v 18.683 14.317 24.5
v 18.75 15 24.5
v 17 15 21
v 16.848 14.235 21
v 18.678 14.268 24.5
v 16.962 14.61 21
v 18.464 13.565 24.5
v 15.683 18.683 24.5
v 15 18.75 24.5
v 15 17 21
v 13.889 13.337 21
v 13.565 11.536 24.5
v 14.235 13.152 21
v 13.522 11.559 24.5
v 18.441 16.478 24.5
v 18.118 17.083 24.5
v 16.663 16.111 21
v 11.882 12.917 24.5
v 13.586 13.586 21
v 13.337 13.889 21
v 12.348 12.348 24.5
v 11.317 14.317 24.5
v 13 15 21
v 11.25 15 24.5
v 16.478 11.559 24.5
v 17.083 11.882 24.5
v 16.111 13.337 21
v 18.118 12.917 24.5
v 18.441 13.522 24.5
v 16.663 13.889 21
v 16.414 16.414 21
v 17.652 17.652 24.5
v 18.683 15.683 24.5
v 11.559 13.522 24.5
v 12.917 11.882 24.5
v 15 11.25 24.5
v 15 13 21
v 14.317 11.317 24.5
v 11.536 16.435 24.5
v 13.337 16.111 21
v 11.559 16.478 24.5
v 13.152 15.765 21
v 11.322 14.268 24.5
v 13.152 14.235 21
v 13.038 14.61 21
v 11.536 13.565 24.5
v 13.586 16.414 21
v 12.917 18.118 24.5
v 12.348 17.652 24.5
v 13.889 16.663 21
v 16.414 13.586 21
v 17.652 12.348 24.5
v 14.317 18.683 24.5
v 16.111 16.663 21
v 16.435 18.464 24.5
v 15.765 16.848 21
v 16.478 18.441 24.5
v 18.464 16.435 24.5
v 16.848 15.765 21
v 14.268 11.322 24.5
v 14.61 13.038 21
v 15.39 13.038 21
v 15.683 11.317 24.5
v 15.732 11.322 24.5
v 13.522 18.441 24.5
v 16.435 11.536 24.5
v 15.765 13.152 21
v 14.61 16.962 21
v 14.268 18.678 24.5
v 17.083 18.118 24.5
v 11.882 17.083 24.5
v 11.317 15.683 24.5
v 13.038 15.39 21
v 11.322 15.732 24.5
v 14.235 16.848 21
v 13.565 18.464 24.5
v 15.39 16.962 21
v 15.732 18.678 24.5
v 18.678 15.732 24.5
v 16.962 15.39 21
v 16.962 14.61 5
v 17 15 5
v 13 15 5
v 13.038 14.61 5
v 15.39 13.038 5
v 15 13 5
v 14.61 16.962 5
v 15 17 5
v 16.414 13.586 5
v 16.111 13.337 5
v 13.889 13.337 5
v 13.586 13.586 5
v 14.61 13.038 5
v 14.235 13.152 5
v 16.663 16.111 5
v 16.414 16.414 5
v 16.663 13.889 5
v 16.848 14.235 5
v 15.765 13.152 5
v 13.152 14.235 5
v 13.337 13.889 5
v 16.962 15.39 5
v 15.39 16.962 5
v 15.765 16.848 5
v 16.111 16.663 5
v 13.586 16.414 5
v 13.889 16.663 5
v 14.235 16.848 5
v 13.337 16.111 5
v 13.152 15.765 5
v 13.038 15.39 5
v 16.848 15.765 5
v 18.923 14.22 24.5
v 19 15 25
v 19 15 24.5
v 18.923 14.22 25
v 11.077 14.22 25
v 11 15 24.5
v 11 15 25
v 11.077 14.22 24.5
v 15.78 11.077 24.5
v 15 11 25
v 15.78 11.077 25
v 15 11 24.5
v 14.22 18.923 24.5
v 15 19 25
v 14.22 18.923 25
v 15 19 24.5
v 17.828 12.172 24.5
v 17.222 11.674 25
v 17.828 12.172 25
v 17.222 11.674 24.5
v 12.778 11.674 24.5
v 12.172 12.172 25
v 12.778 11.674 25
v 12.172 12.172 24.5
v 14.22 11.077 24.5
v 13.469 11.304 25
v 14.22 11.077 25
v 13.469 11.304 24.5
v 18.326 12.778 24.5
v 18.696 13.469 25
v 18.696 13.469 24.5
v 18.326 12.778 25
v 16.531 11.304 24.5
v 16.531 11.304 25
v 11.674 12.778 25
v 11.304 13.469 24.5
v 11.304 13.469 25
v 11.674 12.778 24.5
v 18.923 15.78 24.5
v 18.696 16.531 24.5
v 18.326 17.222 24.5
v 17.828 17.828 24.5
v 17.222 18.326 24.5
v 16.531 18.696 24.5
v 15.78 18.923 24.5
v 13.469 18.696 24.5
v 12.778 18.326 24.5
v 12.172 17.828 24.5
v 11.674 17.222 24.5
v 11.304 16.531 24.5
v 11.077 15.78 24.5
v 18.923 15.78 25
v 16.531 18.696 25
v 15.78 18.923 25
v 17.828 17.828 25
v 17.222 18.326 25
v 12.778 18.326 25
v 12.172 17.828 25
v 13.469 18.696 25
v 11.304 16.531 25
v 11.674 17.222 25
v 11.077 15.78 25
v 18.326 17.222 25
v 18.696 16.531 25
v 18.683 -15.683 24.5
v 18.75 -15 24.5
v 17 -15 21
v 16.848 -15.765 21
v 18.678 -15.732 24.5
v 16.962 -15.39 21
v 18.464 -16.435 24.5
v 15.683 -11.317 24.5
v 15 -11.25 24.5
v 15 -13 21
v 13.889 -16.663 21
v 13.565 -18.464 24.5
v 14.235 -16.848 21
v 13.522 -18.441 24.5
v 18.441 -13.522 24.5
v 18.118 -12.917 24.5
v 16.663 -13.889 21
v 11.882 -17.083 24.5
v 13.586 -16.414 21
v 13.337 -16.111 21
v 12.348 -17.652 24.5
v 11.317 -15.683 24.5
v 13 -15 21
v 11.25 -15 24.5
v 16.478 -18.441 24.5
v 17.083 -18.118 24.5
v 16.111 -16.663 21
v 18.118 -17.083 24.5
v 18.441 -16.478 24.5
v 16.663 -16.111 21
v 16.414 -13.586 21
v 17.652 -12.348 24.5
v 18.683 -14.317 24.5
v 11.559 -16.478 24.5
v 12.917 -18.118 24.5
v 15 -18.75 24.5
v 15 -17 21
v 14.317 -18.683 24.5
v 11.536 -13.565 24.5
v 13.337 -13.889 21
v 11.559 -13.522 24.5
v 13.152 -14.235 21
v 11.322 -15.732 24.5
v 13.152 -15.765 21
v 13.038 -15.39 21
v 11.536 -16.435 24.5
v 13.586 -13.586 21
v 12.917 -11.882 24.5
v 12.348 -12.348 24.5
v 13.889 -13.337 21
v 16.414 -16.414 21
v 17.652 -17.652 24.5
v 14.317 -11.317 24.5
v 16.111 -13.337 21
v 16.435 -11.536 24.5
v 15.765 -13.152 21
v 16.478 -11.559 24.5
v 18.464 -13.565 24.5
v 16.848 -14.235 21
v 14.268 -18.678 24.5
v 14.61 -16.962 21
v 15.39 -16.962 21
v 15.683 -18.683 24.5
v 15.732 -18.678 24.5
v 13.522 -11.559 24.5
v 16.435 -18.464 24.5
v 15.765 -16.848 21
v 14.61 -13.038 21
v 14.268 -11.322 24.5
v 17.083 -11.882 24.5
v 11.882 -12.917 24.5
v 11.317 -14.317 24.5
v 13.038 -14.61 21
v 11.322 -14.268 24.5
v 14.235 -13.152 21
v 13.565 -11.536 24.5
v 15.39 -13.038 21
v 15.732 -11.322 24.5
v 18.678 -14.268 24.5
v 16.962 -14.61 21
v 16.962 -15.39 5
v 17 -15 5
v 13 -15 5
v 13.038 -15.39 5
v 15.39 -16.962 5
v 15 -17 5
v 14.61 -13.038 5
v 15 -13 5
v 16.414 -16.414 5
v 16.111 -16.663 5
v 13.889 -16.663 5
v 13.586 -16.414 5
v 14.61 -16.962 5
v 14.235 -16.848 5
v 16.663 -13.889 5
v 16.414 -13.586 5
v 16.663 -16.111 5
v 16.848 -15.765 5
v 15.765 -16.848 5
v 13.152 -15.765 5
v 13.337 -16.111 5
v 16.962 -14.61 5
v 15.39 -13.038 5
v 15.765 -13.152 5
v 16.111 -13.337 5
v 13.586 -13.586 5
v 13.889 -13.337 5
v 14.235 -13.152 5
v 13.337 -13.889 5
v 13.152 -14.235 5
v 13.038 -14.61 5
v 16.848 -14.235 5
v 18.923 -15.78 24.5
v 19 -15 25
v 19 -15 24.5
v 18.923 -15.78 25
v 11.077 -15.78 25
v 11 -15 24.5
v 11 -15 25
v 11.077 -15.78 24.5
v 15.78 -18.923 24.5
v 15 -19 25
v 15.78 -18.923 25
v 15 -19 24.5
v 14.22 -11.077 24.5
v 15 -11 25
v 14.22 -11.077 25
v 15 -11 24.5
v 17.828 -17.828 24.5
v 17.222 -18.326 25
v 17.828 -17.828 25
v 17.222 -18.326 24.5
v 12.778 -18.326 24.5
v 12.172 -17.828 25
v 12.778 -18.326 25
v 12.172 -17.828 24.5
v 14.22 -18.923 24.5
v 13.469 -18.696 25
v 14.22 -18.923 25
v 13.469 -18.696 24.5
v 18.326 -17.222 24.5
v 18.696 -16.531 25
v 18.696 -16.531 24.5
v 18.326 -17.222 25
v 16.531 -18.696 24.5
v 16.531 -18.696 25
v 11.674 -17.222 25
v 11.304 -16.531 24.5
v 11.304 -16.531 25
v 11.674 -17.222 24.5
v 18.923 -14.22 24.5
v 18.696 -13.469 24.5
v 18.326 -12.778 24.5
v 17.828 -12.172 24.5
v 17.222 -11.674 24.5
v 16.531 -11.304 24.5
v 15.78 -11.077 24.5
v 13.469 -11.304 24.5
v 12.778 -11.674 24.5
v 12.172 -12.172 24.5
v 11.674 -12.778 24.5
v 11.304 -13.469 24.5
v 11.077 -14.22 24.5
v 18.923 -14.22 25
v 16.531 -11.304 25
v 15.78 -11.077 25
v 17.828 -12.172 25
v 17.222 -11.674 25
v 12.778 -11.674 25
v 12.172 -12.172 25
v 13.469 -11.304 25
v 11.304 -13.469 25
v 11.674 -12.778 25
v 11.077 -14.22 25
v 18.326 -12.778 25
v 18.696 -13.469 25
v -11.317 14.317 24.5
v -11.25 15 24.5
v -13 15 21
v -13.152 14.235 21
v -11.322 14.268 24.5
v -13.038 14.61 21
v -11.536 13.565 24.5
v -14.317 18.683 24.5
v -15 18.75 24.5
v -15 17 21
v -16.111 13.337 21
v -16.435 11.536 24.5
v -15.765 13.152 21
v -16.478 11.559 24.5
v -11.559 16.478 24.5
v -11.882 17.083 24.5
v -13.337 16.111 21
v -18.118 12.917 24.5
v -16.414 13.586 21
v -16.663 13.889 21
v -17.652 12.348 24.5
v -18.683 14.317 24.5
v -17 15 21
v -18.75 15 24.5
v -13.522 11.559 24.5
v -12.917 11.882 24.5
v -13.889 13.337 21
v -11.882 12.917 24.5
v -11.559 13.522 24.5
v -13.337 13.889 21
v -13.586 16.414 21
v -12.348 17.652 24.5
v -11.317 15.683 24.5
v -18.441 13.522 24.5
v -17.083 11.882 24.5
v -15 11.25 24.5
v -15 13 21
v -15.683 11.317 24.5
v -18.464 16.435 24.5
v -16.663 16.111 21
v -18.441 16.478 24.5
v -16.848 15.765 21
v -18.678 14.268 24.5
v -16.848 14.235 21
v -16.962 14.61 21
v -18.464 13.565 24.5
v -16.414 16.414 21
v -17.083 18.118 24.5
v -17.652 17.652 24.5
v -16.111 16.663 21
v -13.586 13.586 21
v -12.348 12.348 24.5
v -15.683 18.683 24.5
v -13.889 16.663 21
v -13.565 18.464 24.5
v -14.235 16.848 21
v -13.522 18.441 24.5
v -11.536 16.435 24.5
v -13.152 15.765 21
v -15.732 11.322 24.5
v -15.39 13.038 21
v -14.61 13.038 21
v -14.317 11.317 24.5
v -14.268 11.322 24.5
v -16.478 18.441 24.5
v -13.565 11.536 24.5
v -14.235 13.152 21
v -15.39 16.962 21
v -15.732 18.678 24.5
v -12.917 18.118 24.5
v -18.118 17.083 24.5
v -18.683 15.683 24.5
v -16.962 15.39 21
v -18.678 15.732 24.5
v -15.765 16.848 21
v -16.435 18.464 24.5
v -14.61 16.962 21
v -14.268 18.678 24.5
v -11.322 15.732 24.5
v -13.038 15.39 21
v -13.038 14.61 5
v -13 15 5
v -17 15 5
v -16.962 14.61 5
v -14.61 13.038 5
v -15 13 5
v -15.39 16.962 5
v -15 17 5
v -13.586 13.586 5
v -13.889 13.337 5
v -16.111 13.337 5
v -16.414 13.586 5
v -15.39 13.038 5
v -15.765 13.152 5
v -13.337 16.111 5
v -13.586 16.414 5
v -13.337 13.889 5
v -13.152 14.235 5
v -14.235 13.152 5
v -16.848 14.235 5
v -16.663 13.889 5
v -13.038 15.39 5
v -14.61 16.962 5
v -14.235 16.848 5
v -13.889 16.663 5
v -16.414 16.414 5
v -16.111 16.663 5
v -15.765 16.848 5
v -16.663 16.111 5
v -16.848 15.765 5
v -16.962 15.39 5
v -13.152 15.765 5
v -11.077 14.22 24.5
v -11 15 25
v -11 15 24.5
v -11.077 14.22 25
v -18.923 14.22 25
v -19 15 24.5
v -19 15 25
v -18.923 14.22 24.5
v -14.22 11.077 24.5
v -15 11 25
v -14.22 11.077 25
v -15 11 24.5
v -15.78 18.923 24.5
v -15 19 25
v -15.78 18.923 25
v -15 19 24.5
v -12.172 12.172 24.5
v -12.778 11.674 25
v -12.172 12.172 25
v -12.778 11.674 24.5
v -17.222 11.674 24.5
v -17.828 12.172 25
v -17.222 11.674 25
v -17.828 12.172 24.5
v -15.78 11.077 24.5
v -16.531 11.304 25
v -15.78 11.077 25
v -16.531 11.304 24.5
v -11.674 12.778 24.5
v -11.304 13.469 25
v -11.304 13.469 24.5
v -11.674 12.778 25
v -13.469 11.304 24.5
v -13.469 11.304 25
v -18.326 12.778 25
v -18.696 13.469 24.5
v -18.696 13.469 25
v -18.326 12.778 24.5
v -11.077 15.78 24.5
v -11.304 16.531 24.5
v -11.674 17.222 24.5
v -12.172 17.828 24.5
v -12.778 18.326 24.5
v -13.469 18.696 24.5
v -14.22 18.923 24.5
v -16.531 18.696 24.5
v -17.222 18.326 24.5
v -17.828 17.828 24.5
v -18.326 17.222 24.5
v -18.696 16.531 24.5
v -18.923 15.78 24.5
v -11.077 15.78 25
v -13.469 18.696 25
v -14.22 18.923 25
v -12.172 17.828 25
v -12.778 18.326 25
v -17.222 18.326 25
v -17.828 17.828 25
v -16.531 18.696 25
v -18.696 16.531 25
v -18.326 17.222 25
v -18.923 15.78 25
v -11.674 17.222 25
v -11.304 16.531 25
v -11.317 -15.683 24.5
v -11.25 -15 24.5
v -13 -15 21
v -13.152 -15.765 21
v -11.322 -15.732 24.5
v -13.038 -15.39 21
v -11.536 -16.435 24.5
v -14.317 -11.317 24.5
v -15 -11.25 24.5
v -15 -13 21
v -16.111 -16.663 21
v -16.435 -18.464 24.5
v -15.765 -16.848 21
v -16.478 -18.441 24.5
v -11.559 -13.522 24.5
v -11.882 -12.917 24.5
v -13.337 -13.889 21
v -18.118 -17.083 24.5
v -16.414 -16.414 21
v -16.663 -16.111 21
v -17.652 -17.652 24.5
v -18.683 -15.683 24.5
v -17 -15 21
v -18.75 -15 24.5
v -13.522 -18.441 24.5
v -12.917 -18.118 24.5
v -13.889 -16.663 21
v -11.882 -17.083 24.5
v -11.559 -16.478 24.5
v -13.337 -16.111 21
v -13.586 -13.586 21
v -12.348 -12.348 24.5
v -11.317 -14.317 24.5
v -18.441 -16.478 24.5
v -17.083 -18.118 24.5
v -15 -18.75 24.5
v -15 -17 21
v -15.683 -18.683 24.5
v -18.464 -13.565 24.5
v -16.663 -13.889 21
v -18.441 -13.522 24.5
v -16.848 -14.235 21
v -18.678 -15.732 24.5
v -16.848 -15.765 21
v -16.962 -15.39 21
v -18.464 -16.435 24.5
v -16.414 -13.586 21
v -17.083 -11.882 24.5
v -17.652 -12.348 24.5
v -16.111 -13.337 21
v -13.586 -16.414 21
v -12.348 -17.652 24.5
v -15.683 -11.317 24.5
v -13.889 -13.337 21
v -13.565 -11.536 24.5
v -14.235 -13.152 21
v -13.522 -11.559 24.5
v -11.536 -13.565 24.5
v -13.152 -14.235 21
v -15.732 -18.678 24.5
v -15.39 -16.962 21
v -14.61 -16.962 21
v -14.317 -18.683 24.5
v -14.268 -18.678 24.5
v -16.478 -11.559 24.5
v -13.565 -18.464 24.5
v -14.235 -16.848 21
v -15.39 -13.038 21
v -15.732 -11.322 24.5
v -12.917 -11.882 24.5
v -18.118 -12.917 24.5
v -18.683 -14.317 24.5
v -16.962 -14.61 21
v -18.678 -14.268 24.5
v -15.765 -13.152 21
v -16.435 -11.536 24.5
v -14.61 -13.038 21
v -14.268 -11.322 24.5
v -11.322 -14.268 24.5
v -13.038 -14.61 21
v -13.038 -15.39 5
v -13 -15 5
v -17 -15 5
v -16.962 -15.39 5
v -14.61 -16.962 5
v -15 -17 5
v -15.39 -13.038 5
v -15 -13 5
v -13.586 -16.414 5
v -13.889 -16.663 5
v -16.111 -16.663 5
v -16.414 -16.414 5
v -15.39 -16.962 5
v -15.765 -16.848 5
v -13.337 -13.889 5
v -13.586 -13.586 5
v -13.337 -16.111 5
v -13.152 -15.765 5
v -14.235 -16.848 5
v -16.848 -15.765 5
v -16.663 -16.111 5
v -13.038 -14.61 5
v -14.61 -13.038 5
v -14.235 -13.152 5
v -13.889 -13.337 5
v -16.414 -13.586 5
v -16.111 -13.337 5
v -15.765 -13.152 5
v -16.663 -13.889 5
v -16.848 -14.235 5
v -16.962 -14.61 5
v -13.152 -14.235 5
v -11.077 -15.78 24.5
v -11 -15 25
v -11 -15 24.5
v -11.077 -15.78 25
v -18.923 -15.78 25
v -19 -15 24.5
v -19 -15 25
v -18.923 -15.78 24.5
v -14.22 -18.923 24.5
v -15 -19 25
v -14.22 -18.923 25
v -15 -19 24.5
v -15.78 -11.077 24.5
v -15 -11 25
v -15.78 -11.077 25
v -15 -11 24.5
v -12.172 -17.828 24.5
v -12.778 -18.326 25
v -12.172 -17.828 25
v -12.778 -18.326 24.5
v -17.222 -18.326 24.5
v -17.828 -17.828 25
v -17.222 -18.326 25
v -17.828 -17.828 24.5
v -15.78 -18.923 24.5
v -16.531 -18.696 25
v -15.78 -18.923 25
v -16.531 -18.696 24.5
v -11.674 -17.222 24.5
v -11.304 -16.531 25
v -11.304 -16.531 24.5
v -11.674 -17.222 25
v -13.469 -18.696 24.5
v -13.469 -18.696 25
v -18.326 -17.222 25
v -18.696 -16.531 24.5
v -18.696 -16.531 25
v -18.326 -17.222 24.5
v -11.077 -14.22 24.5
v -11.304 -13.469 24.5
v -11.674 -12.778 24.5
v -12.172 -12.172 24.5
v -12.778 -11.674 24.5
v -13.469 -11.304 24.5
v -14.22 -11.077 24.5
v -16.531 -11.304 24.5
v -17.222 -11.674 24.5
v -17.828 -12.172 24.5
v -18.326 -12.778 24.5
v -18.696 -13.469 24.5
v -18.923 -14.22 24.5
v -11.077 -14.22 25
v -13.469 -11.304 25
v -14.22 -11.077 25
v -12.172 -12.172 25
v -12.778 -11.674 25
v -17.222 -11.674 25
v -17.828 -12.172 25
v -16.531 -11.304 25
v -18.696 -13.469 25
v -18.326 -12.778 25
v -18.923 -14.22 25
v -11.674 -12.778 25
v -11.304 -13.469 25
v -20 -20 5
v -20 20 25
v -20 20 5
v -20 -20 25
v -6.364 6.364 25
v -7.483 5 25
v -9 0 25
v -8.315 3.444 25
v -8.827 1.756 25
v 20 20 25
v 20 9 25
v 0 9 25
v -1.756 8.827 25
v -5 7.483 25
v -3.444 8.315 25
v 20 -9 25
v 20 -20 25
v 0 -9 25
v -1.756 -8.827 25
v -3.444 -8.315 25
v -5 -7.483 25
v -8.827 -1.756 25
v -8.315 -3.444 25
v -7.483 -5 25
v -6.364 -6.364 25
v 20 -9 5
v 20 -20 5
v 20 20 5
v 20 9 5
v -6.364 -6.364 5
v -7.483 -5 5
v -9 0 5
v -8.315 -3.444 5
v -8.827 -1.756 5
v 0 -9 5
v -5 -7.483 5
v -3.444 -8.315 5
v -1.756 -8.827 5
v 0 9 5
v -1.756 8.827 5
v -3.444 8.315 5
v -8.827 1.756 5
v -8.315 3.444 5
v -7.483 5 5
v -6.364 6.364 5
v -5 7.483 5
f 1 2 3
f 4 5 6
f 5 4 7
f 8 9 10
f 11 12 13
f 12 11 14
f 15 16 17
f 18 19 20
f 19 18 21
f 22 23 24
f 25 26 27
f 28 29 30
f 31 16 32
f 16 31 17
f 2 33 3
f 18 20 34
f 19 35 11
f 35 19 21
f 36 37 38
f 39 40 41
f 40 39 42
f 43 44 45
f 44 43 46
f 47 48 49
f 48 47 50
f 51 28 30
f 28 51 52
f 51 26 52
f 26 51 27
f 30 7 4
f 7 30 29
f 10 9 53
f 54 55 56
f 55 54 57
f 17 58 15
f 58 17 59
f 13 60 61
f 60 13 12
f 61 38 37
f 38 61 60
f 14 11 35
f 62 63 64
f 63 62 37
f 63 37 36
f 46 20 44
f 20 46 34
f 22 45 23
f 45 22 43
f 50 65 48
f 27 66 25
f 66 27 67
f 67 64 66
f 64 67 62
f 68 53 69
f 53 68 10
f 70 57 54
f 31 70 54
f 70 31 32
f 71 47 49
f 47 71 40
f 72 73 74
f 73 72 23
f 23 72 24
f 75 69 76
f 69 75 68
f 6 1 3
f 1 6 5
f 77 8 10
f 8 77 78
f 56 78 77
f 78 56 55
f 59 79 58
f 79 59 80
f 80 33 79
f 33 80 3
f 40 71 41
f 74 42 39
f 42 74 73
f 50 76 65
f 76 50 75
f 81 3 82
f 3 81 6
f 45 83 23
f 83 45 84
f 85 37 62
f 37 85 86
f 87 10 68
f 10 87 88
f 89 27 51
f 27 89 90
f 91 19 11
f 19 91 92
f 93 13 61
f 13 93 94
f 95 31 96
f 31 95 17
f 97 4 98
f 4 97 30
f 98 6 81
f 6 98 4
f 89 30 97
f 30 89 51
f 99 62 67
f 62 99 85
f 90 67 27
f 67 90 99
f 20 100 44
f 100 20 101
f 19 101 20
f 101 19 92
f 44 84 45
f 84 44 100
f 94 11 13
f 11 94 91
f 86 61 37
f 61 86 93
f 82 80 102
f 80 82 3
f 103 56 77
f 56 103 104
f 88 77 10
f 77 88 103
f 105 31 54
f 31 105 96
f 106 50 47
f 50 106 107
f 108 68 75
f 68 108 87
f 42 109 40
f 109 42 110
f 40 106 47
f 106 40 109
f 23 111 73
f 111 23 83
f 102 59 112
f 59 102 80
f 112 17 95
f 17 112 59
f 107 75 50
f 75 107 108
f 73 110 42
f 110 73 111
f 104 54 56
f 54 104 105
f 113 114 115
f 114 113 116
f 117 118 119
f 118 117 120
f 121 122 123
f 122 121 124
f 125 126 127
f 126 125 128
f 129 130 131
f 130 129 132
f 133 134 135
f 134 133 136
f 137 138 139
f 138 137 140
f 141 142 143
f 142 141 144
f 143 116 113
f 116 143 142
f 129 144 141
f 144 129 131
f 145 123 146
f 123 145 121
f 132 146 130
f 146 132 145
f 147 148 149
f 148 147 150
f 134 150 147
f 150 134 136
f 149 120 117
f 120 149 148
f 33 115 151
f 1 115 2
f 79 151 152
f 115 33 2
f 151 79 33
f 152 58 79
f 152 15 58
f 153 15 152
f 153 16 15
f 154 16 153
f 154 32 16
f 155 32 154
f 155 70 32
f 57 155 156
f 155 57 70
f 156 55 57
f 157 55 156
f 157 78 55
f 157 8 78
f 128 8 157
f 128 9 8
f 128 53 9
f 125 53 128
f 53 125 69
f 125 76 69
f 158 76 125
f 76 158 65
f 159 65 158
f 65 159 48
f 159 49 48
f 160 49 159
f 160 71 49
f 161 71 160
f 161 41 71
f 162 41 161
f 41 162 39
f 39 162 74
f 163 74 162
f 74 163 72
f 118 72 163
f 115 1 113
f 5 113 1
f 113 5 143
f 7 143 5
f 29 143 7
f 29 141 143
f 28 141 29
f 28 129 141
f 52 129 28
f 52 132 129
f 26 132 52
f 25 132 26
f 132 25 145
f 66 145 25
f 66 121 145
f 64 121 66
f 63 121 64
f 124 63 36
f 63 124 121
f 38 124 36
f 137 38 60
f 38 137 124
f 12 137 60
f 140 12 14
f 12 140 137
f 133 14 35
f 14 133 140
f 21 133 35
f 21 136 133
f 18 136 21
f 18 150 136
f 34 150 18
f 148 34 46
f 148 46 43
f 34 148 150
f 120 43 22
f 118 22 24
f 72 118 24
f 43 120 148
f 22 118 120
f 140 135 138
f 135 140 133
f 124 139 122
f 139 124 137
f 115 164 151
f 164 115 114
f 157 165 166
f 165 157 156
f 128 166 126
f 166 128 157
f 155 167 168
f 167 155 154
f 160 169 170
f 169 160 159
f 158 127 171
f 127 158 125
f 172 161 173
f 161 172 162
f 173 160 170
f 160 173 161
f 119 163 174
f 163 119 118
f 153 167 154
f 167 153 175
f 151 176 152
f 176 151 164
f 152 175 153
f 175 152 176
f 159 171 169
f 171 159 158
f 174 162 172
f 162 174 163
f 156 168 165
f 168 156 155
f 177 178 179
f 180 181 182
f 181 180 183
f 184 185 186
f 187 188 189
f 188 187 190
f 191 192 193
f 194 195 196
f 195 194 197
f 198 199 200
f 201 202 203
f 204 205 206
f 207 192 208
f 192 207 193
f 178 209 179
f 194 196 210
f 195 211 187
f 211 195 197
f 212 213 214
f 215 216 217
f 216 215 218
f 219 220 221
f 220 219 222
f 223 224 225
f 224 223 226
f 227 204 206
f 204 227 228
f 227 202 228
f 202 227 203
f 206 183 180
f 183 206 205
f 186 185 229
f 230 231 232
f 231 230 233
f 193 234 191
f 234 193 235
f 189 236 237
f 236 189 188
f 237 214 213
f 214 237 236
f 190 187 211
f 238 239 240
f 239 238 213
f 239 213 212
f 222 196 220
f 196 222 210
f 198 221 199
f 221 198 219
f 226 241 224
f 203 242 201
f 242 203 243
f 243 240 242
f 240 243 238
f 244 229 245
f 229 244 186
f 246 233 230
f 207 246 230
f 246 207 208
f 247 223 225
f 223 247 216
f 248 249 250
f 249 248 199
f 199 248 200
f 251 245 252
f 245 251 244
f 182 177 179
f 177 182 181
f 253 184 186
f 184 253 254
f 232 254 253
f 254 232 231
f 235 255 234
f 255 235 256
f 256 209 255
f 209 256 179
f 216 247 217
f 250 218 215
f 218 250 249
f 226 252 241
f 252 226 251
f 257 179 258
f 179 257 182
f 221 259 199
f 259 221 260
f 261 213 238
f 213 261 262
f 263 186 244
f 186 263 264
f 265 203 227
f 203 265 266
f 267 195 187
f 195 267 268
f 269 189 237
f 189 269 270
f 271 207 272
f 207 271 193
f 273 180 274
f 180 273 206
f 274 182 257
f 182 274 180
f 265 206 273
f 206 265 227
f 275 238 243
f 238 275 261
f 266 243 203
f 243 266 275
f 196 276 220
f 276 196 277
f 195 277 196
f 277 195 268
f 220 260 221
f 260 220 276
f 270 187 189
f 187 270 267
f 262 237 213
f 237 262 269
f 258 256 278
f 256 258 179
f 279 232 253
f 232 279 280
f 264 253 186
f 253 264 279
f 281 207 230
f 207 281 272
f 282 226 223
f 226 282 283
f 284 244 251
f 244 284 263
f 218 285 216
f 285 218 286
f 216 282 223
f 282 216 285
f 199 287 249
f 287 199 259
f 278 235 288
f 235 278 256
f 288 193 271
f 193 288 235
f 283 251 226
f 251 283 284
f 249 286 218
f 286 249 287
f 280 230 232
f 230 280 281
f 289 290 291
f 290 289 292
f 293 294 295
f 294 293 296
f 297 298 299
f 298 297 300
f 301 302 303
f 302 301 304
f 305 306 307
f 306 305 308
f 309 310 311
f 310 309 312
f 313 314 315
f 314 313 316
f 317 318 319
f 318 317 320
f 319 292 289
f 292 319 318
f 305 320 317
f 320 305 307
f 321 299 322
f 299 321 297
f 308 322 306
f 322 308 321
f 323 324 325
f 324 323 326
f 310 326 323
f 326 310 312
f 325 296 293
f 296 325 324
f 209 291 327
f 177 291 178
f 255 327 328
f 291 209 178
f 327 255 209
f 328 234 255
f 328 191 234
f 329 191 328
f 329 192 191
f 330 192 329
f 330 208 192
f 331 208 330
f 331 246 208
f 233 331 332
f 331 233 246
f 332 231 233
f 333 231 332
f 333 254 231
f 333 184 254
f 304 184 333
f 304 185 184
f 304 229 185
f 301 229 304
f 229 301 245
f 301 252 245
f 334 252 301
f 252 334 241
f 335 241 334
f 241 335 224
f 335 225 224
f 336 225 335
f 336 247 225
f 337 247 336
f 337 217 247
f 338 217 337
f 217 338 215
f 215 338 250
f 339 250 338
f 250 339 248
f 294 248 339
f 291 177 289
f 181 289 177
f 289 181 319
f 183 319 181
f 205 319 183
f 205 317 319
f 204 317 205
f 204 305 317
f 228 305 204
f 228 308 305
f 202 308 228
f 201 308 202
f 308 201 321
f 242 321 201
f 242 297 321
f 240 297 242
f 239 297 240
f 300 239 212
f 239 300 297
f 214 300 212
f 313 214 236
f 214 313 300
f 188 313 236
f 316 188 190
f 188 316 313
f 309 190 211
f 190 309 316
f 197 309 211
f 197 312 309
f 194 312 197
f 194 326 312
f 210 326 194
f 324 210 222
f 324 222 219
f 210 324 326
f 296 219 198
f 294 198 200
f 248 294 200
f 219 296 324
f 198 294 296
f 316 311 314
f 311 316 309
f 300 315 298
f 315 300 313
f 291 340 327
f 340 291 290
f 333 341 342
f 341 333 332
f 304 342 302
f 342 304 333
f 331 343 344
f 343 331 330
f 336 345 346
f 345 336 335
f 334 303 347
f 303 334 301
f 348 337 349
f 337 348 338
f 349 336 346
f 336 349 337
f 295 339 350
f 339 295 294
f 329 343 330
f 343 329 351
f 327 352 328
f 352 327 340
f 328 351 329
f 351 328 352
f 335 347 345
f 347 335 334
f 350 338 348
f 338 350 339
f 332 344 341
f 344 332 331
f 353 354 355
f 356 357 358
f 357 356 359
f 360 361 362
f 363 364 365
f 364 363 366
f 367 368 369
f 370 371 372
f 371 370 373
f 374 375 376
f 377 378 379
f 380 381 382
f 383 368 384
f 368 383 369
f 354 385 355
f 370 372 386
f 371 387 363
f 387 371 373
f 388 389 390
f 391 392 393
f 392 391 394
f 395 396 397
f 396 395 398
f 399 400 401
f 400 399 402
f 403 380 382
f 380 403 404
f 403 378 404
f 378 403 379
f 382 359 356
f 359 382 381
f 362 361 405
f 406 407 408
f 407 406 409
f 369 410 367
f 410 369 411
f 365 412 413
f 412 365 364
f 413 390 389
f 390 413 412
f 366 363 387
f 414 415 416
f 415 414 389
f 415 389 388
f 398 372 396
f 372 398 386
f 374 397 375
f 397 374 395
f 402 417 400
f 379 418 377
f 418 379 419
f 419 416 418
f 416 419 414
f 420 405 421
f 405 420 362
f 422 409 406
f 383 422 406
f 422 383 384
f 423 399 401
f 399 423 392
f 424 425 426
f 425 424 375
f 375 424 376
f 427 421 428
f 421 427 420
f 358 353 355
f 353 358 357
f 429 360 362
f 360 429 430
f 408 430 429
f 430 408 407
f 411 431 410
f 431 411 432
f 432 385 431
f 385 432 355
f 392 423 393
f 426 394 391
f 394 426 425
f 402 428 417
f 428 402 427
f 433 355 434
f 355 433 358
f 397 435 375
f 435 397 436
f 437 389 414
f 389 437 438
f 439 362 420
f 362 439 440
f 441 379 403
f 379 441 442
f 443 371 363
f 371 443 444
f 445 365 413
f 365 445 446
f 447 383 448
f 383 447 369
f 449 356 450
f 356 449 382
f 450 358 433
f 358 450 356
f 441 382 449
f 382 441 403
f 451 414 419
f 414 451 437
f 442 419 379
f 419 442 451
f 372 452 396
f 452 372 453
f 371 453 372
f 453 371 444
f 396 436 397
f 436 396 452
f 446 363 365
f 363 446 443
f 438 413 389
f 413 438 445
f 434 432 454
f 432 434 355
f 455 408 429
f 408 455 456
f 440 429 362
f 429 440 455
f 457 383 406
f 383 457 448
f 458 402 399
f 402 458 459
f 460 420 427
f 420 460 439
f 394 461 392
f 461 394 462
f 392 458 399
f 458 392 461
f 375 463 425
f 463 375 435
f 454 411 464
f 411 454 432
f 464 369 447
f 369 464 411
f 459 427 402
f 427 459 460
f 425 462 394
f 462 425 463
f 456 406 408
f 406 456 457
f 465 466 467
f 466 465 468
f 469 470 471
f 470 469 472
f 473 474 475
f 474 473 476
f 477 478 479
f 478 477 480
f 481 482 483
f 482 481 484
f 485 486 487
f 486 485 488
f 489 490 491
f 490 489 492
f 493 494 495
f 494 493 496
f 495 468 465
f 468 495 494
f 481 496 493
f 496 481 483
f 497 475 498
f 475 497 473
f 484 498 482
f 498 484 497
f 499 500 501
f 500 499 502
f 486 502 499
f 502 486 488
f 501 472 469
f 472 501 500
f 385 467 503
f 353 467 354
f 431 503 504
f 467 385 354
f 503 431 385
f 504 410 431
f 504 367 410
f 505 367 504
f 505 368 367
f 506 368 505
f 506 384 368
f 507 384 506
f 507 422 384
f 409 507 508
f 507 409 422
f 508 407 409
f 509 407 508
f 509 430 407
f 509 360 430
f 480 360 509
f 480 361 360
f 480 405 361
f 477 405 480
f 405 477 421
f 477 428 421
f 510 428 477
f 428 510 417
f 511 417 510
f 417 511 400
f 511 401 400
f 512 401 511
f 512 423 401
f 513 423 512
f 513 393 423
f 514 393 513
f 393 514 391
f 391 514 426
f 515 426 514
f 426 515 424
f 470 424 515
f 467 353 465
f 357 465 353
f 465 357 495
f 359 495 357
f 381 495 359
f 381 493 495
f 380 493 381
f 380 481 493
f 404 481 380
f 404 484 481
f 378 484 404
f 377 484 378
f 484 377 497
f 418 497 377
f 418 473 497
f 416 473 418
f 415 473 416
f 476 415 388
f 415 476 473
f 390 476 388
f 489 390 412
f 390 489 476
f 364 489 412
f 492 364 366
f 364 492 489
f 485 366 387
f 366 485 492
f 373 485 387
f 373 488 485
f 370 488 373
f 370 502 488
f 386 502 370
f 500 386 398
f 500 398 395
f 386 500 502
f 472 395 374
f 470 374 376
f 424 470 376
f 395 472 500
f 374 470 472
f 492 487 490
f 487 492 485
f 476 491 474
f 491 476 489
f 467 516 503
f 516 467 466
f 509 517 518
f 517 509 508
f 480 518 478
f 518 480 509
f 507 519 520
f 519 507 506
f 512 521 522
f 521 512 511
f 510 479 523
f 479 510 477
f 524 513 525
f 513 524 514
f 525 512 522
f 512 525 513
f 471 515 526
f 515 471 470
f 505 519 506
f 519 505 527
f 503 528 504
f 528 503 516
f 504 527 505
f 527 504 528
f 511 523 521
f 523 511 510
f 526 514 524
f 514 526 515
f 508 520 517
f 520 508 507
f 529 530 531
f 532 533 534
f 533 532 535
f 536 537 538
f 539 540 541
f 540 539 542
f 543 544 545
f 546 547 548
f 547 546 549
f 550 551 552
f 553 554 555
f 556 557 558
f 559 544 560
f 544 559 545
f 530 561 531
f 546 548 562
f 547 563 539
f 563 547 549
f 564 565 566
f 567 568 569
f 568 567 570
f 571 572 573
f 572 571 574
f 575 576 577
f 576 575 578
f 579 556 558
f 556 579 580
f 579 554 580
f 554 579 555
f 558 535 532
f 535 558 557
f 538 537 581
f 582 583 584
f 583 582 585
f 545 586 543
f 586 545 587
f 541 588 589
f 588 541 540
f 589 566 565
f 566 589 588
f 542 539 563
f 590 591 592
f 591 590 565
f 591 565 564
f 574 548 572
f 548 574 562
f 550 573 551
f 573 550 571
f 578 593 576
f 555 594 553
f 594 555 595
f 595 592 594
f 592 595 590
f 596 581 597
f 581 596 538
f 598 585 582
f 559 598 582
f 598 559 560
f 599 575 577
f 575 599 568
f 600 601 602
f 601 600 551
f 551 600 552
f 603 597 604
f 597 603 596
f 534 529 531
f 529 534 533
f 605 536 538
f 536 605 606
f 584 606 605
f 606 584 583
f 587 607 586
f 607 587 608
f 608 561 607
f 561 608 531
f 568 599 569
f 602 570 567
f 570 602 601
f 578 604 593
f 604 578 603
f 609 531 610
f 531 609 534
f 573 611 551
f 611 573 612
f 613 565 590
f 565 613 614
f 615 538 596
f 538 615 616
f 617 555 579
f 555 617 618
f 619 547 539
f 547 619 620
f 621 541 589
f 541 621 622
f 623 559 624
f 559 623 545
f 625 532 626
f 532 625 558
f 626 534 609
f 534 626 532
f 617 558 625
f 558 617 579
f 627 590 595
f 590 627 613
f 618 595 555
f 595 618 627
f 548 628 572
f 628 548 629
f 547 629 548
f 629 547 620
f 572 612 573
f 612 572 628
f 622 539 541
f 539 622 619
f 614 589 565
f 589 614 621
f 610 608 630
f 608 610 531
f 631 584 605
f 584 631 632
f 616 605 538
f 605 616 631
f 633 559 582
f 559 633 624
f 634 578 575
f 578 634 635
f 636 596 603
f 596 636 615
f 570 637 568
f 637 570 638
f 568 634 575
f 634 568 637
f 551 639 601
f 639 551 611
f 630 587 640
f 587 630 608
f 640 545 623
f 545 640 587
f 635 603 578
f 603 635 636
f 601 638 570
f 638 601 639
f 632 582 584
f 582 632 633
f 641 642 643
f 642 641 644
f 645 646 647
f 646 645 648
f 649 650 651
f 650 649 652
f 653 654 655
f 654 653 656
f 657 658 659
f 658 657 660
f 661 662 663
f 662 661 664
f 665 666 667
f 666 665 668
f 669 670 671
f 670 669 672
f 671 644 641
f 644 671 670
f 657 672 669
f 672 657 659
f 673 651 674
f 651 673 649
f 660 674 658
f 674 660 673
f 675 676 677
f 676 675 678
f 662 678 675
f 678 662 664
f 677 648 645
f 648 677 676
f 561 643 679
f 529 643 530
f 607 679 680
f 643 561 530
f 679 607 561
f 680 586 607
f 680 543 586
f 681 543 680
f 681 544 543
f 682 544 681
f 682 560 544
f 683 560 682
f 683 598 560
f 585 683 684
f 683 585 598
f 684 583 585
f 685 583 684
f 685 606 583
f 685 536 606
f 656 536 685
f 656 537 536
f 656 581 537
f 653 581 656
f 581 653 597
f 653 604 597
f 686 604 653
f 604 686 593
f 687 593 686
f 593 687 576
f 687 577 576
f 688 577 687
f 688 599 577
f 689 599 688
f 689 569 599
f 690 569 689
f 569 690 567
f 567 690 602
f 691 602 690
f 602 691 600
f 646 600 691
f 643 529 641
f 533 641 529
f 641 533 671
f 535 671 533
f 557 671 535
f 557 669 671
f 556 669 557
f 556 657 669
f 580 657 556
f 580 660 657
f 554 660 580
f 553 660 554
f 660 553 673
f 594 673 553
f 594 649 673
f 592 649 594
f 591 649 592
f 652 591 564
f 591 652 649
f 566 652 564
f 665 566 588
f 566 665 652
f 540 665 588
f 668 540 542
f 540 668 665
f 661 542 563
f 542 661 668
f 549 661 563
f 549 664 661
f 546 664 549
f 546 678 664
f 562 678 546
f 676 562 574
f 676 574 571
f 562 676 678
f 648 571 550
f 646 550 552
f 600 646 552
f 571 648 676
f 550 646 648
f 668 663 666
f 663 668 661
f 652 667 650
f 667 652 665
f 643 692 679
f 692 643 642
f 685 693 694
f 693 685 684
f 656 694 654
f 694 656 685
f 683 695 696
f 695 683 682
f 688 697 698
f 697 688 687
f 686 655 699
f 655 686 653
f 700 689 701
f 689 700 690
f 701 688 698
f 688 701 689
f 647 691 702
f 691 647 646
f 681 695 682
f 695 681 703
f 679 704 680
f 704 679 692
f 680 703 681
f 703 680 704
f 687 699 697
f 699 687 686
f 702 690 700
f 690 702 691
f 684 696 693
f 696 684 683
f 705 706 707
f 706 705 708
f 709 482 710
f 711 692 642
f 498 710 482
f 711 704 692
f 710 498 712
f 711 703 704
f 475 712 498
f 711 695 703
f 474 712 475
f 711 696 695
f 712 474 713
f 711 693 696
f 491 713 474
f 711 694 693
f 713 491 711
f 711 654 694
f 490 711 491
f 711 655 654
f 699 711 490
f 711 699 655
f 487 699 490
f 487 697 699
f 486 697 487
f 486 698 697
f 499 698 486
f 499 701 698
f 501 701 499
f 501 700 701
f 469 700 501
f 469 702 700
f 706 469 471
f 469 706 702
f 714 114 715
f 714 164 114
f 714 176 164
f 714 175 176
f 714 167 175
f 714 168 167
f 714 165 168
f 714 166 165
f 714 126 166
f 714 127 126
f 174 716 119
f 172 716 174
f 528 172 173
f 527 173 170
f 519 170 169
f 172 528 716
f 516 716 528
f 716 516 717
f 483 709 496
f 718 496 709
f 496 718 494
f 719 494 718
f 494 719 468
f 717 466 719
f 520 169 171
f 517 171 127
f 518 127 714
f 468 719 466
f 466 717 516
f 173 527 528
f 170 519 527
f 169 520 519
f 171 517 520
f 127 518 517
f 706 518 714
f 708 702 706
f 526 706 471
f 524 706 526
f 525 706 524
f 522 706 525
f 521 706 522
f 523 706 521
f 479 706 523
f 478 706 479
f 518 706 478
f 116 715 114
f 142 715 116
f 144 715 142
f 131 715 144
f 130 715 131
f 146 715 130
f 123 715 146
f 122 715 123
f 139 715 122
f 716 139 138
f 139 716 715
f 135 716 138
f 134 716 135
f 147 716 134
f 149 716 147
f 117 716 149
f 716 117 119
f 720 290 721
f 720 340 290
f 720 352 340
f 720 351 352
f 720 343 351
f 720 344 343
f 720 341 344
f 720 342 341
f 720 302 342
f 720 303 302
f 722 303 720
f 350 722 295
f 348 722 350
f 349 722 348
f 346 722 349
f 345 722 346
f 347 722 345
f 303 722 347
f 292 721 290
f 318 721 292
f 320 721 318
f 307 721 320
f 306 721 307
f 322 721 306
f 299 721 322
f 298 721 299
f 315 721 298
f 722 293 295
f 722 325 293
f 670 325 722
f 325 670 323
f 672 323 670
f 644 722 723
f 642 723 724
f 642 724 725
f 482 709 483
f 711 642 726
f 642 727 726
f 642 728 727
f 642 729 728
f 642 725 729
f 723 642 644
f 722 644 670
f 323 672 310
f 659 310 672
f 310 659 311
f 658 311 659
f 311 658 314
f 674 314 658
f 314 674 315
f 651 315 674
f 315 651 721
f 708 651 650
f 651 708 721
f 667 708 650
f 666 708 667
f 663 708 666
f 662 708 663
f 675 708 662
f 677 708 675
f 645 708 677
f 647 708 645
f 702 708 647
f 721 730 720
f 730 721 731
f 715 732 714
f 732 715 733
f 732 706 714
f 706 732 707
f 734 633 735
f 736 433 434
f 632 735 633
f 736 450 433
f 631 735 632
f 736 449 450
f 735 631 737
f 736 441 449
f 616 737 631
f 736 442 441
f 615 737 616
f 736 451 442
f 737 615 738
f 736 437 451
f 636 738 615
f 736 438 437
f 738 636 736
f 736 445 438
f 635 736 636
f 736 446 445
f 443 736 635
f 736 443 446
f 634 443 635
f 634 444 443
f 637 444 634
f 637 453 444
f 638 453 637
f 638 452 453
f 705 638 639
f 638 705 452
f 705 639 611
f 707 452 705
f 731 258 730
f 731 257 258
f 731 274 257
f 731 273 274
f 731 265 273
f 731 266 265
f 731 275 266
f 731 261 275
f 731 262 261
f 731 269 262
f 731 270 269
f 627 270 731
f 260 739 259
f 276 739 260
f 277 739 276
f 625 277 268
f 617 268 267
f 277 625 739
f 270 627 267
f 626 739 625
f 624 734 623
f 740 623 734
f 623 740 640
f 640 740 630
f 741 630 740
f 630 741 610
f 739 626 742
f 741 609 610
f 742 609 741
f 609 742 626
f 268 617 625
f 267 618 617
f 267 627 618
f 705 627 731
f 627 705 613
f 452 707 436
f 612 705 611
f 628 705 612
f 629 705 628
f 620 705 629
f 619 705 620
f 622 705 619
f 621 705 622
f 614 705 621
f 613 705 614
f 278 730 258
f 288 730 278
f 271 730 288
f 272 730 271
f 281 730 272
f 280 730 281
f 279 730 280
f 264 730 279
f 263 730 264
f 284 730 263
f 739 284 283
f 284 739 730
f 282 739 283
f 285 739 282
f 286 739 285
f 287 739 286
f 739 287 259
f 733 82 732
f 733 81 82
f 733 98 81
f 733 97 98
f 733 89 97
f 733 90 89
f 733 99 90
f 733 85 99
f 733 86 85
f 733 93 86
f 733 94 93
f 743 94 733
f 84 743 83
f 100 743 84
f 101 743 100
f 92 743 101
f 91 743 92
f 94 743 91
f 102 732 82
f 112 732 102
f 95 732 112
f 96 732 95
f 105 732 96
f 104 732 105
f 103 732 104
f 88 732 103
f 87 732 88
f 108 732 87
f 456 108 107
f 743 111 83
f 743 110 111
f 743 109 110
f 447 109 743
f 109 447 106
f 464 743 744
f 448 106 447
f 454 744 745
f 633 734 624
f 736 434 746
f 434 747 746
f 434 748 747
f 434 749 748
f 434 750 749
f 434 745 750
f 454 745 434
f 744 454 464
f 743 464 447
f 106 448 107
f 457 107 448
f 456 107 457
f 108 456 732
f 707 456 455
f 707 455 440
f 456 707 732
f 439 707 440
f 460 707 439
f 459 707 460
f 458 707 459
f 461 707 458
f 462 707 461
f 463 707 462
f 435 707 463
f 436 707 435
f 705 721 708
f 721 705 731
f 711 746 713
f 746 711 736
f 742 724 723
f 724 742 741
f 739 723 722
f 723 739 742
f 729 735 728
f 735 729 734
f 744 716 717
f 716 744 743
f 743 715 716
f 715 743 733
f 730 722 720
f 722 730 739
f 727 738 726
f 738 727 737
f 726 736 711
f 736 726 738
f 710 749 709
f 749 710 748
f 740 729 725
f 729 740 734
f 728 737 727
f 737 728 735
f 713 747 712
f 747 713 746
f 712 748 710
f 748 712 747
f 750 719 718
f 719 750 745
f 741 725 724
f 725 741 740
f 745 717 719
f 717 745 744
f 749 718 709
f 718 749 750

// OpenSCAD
$fn=32;
difference(){
translate([0,0,15])cube([40,40,20],center=true);
hull(){
cylinder(r=18/2,h=40);
translate([20,0,0])cylinder(r=18/2,h=40);
}

translate([15,15,25])tornillo();
translate([15,-15,25])tornillo();
translate([-15,15,25])tornillo();
translate([-15,-15,25])tornillo();
}
module tornillo(){
    color("blue")
rotate([180,0,0]){
cylinder(r1=8/2,r2=4/2,h=4);
cylinder(r=4/2,h=50);
translate([0,0,-9.5])cylinder(r=8/2,h=10);
}
}
